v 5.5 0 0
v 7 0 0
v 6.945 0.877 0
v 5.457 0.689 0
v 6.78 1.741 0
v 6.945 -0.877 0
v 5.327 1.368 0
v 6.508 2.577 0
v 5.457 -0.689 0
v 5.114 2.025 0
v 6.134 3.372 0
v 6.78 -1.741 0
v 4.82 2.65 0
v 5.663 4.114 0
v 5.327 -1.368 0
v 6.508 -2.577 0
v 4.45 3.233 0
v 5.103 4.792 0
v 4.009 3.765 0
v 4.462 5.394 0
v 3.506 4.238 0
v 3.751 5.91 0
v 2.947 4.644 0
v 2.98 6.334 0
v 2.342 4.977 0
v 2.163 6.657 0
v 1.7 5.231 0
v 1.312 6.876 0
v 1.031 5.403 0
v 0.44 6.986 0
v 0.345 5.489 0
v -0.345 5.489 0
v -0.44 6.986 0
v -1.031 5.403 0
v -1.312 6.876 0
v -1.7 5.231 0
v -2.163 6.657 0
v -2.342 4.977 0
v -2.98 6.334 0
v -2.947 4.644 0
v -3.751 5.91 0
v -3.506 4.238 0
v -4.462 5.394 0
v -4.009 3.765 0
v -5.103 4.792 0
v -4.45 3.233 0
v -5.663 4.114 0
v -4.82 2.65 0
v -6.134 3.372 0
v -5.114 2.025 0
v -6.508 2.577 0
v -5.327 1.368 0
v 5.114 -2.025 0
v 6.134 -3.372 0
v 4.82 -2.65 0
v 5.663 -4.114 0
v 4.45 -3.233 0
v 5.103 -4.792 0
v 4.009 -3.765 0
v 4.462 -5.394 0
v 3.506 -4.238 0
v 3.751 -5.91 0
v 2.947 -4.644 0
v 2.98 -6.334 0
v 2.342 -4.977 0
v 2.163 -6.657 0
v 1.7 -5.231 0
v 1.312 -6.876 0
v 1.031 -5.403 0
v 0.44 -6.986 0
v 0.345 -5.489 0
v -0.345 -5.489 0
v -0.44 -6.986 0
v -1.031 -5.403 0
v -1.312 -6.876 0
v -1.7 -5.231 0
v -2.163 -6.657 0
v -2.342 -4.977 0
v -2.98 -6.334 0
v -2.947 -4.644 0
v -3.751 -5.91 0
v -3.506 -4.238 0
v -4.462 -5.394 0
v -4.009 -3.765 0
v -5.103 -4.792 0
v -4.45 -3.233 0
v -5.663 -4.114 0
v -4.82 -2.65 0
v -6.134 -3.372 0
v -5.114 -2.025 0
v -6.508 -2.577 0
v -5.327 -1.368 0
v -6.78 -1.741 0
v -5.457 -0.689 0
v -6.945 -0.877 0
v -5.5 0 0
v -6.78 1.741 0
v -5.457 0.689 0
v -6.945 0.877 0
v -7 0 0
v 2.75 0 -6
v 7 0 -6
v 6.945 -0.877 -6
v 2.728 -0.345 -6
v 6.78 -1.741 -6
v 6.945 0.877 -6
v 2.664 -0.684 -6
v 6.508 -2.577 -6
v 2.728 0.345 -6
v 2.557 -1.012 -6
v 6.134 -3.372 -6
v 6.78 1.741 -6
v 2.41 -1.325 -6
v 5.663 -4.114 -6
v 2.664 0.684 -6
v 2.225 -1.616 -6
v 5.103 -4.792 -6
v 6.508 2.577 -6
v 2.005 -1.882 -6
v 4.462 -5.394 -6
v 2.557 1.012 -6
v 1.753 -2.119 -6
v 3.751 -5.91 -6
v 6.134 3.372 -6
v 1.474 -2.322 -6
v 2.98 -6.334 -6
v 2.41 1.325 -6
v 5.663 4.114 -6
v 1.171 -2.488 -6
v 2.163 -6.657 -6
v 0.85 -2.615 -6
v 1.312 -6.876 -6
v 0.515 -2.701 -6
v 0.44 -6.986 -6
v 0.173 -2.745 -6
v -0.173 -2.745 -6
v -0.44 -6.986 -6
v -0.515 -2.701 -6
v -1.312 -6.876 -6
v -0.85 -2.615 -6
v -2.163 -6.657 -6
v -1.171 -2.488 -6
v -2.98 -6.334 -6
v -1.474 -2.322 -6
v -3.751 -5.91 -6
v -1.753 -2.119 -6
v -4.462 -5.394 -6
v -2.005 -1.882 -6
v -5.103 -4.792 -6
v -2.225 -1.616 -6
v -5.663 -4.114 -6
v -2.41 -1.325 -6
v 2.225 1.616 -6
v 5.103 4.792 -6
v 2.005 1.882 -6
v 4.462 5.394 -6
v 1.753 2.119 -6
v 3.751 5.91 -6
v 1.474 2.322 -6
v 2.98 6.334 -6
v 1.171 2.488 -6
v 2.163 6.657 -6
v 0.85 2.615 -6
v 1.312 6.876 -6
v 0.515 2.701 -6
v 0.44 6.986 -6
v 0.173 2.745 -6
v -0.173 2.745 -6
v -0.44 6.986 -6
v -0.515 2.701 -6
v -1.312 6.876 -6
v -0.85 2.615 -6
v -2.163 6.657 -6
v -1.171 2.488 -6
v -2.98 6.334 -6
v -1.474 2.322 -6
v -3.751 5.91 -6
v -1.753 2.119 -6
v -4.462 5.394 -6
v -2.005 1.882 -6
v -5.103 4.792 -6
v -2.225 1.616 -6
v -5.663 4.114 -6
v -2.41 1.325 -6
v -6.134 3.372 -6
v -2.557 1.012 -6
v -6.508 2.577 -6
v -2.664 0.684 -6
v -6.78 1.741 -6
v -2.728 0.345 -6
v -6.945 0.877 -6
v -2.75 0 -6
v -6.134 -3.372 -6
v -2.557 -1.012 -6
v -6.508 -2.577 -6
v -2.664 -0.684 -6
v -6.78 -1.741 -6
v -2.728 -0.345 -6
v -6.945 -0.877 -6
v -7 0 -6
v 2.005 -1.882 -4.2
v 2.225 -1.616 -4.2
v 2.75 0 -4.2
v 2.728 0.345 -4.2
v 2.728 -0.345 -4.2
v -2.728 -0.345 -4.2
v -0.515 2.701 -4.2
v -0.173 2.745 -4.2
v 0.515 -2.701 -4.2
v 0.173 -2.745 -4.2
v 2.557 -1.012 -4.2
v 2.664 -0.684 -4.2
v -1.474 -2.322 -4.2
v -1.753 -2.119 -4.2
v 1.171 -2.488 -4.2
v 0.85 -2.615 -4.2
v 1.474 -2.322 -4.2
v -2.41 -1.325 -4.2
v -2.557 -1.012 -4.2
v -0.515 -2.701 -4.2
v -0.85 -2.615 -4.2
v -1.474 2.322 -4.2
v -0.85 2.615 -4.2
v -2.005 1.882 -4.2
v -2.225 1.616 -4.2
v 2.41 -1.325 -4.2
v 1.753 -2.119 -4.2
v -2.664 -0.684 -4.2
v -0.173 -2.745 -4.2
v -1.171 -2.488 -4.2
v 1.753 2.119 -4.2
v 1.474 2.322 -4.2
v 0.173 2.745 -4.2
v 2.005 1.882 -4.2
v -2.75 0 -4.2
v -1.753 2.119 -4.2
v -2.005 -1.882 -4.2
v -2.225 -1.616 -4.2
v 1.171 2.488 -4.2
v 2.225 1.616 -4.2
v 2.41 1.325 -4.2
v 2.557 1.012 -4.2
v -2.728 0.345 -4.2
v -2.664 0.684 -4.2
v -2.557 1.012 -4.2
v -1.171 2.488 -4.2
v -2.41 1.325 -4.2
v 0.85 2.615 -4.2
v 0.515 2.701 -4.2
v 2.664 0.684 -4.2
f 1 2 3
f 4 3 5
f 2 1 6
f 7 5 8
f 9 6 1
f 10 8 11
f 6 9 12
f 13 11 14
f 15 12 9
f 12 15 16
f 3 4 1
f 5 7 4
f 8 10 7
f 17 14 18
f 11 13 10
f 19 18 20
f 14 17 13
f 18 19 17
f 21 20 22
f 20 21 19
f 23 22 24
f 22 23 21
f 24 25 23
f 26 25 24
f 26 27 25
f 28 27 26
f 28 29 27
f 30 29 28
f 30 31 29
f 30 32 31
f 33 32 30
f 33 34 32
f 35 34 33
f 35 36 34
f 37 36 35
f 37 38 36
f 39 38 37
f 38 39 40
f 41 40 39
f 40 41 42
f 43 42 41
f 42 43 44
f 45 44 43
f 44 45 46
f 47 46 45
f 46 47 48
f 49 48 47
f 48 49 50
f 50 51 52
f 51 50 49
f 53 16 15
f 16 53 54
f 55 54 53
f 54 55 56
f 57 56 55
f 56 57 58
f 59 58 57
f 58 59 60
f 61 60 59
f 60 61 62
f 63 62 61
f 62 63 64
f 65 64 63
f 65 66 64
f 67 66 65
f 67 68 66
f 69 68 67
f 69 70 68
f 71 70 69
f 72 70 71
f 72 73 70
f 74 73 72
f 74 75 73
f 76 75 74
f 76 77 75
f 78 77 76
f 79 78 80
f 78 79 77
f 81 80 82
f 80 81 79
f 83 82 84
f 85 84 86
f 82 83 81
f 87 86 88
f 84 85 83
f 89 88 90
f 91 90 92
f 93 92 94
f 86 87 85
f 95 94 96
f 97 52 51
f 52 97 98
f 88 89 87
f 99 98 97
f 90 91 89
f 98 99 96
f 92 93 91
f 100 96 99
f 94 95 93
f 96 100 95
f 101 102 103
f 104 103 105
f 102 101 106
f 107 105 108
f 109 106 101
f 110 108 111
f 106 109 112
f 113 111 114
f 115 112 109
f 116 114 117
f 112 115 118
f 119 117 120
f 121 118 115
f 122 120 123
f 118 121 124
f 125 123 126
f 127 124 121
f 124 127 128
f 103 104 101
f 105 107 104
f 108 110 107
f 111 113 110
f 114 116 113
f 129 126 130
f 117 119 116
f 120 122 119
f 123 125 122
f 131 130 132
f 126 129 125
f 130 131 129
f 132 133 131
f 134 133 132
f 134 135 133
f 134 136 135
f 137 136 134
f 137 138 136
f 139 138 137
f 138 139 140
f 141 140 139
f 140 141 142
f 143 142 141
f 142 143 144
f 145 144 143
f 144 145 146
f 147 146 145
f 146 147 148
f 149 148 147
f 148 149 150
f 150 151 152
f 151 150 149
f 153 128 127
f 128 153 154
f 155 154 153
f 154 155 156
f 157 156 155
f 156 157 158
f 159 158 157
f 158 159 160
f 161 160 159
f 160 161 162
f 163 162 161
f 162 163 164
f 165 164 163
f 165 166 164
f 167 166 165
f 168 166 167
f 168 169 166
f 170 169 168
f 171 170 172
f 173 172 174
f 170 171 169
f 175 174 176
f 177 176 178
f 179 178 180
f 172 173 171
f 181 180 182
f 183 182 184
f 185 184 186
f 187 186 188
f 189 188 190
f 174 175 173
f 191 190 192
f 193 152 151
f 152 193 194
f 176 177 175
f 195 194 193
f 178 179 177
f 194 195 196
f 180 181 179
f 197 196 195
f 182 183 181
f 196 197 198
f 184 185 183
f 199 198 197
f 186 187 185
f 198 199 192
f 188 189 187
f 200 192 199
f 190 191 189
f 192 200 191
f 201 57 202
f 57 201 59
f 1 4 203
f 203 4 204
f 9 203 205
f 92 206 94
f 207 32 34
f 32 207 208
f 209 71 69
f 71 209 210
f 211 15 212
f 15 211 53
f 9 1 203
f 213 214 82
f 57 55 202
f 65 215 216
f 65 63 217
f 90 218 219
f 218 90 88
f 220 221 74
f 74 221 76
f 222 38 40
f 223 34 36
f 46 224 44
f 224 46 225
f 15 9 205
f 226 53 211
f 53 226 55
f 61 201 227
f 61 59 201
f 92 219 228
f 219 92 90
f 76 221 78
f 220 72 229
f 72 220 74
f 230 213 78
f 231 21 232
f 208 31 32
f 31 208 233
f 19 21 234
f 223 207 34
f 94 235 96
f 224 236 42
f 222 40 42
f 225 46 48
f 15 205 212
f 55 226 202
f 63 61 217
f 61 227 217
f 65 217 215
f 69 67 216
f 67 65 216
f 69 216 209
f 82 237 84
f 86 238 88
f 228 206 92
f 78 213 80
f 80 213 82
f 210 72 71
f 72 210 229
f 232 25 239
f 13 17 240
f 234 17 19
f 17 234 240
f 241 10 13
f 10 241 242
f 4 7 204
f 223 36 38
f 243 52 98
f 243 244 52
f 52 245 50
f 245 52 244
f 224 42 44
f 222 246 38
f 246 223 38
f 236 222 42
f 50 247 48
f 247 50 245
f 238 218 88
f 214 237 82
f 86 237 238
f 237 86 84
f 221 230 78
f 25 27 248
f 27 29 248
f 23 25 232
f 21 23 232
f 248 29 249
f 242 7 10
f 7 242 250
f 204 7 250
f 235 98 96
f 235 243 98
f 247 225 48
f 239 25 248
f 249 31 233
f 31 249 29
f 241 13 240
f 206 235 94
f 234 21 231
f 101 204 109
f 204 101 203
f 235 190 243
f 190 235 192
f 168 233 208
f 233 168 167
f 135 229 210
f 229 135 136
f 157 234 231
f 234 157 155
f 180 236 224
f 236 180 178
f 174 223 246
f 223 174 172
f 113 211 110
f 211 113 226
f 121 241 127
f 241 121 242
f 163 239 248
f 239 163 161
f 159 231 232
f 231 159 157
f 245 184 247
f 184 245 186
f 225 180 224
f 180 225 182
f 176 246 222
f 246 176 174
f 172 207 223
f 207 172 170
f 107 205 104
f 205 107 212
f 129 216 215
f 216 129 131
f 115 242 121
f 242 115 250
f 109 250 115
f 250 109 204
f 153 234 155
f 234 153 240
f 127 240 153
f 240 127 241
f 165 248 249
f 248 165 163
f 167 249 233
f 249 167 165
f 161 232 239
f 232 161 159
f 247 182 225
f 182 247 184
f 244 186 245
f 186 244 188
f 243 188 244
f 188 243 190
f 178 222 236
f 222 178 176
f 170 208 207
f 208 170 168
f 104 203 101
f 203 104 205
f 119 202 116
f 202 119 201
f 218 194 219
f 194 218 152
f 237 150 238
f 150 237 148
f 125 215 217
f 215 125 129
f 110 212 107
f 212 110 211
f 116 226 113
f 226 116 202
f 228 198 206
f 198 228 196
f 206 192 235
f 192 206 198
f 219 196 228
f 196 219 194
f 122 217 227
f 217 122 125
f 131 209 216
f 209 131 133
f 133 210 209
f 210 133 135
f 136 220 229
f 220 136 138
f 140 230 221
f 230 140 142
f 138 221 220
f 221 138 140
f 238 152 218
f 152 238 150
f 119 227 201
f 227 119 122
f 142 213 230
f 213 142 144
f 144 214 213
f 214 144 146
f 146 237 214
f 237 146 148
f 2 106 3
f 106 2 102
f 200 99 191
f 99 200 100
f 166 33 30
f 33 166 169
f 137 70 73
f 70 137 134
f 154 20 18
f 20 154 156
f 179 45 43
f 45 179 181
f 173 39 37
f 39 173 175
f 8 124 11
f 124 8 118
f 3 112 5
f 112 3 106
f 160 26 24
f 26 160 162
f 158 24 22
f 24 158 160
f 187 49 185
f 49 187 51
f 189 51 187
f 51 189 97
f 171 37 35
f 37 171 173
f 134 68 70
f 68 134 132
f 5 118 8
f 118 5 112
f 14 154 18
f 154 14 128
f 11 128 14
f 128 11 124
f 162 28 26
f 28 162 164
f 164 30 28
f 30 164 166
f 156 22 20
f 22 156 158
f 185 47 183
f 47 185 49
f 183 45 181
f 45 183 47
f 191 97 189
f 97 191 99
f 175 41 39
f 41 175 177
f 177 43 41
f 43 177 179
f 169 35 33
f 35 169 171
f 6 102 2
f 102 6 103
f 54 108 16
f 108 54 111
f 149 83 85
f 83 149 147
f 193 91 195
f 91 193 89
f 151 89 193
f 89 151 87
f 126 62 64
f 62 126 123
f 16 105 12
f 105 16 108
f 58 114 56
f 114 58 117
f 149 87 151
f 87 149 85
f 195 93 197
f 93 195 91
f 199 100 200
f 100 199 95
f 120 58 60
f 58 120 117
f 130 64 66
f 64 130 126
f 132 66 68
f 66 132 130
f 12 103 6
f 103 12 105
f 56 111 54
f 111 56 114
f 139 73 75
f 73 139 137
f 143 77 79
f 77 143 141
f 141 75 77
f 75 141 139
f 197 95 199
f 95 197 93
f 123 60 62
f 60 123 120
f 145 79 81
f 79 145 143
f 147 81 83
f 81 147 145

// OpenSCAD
$fn = 50;


difference() {
	union() {
		translate(v = [0, 0, -6.0000000000]) {
			cylinder(h = 6, r = 7.0000000000);
		}
	}
	union() {
		translate(v = [0, 0, 0]) {
			rotate(a = [0, 0, 0]) {
				difference() {
					union() {
						#translate(v = [0, 0, -6.0000000000]) {
							cylinder(h = 6, r = 2.2500000000);
						}
						#translate(v = [0, 0, -4.2000000000]) {
							cylinder(h = 4.2000000000, r1 = 2.7500000000, r2 = 5.5000000000);
						}
						#translate(v = [0, 0, -6.0000000000]) {
							cylinder(h = 6, r = 2.7500000000);
						}
						#translate(v = [0, 0, -6.0000000000]) {
							cylinder(h = 6, r = 2.2500000000);
						}
					}
					union();
				}
			}
		}
	}
}
